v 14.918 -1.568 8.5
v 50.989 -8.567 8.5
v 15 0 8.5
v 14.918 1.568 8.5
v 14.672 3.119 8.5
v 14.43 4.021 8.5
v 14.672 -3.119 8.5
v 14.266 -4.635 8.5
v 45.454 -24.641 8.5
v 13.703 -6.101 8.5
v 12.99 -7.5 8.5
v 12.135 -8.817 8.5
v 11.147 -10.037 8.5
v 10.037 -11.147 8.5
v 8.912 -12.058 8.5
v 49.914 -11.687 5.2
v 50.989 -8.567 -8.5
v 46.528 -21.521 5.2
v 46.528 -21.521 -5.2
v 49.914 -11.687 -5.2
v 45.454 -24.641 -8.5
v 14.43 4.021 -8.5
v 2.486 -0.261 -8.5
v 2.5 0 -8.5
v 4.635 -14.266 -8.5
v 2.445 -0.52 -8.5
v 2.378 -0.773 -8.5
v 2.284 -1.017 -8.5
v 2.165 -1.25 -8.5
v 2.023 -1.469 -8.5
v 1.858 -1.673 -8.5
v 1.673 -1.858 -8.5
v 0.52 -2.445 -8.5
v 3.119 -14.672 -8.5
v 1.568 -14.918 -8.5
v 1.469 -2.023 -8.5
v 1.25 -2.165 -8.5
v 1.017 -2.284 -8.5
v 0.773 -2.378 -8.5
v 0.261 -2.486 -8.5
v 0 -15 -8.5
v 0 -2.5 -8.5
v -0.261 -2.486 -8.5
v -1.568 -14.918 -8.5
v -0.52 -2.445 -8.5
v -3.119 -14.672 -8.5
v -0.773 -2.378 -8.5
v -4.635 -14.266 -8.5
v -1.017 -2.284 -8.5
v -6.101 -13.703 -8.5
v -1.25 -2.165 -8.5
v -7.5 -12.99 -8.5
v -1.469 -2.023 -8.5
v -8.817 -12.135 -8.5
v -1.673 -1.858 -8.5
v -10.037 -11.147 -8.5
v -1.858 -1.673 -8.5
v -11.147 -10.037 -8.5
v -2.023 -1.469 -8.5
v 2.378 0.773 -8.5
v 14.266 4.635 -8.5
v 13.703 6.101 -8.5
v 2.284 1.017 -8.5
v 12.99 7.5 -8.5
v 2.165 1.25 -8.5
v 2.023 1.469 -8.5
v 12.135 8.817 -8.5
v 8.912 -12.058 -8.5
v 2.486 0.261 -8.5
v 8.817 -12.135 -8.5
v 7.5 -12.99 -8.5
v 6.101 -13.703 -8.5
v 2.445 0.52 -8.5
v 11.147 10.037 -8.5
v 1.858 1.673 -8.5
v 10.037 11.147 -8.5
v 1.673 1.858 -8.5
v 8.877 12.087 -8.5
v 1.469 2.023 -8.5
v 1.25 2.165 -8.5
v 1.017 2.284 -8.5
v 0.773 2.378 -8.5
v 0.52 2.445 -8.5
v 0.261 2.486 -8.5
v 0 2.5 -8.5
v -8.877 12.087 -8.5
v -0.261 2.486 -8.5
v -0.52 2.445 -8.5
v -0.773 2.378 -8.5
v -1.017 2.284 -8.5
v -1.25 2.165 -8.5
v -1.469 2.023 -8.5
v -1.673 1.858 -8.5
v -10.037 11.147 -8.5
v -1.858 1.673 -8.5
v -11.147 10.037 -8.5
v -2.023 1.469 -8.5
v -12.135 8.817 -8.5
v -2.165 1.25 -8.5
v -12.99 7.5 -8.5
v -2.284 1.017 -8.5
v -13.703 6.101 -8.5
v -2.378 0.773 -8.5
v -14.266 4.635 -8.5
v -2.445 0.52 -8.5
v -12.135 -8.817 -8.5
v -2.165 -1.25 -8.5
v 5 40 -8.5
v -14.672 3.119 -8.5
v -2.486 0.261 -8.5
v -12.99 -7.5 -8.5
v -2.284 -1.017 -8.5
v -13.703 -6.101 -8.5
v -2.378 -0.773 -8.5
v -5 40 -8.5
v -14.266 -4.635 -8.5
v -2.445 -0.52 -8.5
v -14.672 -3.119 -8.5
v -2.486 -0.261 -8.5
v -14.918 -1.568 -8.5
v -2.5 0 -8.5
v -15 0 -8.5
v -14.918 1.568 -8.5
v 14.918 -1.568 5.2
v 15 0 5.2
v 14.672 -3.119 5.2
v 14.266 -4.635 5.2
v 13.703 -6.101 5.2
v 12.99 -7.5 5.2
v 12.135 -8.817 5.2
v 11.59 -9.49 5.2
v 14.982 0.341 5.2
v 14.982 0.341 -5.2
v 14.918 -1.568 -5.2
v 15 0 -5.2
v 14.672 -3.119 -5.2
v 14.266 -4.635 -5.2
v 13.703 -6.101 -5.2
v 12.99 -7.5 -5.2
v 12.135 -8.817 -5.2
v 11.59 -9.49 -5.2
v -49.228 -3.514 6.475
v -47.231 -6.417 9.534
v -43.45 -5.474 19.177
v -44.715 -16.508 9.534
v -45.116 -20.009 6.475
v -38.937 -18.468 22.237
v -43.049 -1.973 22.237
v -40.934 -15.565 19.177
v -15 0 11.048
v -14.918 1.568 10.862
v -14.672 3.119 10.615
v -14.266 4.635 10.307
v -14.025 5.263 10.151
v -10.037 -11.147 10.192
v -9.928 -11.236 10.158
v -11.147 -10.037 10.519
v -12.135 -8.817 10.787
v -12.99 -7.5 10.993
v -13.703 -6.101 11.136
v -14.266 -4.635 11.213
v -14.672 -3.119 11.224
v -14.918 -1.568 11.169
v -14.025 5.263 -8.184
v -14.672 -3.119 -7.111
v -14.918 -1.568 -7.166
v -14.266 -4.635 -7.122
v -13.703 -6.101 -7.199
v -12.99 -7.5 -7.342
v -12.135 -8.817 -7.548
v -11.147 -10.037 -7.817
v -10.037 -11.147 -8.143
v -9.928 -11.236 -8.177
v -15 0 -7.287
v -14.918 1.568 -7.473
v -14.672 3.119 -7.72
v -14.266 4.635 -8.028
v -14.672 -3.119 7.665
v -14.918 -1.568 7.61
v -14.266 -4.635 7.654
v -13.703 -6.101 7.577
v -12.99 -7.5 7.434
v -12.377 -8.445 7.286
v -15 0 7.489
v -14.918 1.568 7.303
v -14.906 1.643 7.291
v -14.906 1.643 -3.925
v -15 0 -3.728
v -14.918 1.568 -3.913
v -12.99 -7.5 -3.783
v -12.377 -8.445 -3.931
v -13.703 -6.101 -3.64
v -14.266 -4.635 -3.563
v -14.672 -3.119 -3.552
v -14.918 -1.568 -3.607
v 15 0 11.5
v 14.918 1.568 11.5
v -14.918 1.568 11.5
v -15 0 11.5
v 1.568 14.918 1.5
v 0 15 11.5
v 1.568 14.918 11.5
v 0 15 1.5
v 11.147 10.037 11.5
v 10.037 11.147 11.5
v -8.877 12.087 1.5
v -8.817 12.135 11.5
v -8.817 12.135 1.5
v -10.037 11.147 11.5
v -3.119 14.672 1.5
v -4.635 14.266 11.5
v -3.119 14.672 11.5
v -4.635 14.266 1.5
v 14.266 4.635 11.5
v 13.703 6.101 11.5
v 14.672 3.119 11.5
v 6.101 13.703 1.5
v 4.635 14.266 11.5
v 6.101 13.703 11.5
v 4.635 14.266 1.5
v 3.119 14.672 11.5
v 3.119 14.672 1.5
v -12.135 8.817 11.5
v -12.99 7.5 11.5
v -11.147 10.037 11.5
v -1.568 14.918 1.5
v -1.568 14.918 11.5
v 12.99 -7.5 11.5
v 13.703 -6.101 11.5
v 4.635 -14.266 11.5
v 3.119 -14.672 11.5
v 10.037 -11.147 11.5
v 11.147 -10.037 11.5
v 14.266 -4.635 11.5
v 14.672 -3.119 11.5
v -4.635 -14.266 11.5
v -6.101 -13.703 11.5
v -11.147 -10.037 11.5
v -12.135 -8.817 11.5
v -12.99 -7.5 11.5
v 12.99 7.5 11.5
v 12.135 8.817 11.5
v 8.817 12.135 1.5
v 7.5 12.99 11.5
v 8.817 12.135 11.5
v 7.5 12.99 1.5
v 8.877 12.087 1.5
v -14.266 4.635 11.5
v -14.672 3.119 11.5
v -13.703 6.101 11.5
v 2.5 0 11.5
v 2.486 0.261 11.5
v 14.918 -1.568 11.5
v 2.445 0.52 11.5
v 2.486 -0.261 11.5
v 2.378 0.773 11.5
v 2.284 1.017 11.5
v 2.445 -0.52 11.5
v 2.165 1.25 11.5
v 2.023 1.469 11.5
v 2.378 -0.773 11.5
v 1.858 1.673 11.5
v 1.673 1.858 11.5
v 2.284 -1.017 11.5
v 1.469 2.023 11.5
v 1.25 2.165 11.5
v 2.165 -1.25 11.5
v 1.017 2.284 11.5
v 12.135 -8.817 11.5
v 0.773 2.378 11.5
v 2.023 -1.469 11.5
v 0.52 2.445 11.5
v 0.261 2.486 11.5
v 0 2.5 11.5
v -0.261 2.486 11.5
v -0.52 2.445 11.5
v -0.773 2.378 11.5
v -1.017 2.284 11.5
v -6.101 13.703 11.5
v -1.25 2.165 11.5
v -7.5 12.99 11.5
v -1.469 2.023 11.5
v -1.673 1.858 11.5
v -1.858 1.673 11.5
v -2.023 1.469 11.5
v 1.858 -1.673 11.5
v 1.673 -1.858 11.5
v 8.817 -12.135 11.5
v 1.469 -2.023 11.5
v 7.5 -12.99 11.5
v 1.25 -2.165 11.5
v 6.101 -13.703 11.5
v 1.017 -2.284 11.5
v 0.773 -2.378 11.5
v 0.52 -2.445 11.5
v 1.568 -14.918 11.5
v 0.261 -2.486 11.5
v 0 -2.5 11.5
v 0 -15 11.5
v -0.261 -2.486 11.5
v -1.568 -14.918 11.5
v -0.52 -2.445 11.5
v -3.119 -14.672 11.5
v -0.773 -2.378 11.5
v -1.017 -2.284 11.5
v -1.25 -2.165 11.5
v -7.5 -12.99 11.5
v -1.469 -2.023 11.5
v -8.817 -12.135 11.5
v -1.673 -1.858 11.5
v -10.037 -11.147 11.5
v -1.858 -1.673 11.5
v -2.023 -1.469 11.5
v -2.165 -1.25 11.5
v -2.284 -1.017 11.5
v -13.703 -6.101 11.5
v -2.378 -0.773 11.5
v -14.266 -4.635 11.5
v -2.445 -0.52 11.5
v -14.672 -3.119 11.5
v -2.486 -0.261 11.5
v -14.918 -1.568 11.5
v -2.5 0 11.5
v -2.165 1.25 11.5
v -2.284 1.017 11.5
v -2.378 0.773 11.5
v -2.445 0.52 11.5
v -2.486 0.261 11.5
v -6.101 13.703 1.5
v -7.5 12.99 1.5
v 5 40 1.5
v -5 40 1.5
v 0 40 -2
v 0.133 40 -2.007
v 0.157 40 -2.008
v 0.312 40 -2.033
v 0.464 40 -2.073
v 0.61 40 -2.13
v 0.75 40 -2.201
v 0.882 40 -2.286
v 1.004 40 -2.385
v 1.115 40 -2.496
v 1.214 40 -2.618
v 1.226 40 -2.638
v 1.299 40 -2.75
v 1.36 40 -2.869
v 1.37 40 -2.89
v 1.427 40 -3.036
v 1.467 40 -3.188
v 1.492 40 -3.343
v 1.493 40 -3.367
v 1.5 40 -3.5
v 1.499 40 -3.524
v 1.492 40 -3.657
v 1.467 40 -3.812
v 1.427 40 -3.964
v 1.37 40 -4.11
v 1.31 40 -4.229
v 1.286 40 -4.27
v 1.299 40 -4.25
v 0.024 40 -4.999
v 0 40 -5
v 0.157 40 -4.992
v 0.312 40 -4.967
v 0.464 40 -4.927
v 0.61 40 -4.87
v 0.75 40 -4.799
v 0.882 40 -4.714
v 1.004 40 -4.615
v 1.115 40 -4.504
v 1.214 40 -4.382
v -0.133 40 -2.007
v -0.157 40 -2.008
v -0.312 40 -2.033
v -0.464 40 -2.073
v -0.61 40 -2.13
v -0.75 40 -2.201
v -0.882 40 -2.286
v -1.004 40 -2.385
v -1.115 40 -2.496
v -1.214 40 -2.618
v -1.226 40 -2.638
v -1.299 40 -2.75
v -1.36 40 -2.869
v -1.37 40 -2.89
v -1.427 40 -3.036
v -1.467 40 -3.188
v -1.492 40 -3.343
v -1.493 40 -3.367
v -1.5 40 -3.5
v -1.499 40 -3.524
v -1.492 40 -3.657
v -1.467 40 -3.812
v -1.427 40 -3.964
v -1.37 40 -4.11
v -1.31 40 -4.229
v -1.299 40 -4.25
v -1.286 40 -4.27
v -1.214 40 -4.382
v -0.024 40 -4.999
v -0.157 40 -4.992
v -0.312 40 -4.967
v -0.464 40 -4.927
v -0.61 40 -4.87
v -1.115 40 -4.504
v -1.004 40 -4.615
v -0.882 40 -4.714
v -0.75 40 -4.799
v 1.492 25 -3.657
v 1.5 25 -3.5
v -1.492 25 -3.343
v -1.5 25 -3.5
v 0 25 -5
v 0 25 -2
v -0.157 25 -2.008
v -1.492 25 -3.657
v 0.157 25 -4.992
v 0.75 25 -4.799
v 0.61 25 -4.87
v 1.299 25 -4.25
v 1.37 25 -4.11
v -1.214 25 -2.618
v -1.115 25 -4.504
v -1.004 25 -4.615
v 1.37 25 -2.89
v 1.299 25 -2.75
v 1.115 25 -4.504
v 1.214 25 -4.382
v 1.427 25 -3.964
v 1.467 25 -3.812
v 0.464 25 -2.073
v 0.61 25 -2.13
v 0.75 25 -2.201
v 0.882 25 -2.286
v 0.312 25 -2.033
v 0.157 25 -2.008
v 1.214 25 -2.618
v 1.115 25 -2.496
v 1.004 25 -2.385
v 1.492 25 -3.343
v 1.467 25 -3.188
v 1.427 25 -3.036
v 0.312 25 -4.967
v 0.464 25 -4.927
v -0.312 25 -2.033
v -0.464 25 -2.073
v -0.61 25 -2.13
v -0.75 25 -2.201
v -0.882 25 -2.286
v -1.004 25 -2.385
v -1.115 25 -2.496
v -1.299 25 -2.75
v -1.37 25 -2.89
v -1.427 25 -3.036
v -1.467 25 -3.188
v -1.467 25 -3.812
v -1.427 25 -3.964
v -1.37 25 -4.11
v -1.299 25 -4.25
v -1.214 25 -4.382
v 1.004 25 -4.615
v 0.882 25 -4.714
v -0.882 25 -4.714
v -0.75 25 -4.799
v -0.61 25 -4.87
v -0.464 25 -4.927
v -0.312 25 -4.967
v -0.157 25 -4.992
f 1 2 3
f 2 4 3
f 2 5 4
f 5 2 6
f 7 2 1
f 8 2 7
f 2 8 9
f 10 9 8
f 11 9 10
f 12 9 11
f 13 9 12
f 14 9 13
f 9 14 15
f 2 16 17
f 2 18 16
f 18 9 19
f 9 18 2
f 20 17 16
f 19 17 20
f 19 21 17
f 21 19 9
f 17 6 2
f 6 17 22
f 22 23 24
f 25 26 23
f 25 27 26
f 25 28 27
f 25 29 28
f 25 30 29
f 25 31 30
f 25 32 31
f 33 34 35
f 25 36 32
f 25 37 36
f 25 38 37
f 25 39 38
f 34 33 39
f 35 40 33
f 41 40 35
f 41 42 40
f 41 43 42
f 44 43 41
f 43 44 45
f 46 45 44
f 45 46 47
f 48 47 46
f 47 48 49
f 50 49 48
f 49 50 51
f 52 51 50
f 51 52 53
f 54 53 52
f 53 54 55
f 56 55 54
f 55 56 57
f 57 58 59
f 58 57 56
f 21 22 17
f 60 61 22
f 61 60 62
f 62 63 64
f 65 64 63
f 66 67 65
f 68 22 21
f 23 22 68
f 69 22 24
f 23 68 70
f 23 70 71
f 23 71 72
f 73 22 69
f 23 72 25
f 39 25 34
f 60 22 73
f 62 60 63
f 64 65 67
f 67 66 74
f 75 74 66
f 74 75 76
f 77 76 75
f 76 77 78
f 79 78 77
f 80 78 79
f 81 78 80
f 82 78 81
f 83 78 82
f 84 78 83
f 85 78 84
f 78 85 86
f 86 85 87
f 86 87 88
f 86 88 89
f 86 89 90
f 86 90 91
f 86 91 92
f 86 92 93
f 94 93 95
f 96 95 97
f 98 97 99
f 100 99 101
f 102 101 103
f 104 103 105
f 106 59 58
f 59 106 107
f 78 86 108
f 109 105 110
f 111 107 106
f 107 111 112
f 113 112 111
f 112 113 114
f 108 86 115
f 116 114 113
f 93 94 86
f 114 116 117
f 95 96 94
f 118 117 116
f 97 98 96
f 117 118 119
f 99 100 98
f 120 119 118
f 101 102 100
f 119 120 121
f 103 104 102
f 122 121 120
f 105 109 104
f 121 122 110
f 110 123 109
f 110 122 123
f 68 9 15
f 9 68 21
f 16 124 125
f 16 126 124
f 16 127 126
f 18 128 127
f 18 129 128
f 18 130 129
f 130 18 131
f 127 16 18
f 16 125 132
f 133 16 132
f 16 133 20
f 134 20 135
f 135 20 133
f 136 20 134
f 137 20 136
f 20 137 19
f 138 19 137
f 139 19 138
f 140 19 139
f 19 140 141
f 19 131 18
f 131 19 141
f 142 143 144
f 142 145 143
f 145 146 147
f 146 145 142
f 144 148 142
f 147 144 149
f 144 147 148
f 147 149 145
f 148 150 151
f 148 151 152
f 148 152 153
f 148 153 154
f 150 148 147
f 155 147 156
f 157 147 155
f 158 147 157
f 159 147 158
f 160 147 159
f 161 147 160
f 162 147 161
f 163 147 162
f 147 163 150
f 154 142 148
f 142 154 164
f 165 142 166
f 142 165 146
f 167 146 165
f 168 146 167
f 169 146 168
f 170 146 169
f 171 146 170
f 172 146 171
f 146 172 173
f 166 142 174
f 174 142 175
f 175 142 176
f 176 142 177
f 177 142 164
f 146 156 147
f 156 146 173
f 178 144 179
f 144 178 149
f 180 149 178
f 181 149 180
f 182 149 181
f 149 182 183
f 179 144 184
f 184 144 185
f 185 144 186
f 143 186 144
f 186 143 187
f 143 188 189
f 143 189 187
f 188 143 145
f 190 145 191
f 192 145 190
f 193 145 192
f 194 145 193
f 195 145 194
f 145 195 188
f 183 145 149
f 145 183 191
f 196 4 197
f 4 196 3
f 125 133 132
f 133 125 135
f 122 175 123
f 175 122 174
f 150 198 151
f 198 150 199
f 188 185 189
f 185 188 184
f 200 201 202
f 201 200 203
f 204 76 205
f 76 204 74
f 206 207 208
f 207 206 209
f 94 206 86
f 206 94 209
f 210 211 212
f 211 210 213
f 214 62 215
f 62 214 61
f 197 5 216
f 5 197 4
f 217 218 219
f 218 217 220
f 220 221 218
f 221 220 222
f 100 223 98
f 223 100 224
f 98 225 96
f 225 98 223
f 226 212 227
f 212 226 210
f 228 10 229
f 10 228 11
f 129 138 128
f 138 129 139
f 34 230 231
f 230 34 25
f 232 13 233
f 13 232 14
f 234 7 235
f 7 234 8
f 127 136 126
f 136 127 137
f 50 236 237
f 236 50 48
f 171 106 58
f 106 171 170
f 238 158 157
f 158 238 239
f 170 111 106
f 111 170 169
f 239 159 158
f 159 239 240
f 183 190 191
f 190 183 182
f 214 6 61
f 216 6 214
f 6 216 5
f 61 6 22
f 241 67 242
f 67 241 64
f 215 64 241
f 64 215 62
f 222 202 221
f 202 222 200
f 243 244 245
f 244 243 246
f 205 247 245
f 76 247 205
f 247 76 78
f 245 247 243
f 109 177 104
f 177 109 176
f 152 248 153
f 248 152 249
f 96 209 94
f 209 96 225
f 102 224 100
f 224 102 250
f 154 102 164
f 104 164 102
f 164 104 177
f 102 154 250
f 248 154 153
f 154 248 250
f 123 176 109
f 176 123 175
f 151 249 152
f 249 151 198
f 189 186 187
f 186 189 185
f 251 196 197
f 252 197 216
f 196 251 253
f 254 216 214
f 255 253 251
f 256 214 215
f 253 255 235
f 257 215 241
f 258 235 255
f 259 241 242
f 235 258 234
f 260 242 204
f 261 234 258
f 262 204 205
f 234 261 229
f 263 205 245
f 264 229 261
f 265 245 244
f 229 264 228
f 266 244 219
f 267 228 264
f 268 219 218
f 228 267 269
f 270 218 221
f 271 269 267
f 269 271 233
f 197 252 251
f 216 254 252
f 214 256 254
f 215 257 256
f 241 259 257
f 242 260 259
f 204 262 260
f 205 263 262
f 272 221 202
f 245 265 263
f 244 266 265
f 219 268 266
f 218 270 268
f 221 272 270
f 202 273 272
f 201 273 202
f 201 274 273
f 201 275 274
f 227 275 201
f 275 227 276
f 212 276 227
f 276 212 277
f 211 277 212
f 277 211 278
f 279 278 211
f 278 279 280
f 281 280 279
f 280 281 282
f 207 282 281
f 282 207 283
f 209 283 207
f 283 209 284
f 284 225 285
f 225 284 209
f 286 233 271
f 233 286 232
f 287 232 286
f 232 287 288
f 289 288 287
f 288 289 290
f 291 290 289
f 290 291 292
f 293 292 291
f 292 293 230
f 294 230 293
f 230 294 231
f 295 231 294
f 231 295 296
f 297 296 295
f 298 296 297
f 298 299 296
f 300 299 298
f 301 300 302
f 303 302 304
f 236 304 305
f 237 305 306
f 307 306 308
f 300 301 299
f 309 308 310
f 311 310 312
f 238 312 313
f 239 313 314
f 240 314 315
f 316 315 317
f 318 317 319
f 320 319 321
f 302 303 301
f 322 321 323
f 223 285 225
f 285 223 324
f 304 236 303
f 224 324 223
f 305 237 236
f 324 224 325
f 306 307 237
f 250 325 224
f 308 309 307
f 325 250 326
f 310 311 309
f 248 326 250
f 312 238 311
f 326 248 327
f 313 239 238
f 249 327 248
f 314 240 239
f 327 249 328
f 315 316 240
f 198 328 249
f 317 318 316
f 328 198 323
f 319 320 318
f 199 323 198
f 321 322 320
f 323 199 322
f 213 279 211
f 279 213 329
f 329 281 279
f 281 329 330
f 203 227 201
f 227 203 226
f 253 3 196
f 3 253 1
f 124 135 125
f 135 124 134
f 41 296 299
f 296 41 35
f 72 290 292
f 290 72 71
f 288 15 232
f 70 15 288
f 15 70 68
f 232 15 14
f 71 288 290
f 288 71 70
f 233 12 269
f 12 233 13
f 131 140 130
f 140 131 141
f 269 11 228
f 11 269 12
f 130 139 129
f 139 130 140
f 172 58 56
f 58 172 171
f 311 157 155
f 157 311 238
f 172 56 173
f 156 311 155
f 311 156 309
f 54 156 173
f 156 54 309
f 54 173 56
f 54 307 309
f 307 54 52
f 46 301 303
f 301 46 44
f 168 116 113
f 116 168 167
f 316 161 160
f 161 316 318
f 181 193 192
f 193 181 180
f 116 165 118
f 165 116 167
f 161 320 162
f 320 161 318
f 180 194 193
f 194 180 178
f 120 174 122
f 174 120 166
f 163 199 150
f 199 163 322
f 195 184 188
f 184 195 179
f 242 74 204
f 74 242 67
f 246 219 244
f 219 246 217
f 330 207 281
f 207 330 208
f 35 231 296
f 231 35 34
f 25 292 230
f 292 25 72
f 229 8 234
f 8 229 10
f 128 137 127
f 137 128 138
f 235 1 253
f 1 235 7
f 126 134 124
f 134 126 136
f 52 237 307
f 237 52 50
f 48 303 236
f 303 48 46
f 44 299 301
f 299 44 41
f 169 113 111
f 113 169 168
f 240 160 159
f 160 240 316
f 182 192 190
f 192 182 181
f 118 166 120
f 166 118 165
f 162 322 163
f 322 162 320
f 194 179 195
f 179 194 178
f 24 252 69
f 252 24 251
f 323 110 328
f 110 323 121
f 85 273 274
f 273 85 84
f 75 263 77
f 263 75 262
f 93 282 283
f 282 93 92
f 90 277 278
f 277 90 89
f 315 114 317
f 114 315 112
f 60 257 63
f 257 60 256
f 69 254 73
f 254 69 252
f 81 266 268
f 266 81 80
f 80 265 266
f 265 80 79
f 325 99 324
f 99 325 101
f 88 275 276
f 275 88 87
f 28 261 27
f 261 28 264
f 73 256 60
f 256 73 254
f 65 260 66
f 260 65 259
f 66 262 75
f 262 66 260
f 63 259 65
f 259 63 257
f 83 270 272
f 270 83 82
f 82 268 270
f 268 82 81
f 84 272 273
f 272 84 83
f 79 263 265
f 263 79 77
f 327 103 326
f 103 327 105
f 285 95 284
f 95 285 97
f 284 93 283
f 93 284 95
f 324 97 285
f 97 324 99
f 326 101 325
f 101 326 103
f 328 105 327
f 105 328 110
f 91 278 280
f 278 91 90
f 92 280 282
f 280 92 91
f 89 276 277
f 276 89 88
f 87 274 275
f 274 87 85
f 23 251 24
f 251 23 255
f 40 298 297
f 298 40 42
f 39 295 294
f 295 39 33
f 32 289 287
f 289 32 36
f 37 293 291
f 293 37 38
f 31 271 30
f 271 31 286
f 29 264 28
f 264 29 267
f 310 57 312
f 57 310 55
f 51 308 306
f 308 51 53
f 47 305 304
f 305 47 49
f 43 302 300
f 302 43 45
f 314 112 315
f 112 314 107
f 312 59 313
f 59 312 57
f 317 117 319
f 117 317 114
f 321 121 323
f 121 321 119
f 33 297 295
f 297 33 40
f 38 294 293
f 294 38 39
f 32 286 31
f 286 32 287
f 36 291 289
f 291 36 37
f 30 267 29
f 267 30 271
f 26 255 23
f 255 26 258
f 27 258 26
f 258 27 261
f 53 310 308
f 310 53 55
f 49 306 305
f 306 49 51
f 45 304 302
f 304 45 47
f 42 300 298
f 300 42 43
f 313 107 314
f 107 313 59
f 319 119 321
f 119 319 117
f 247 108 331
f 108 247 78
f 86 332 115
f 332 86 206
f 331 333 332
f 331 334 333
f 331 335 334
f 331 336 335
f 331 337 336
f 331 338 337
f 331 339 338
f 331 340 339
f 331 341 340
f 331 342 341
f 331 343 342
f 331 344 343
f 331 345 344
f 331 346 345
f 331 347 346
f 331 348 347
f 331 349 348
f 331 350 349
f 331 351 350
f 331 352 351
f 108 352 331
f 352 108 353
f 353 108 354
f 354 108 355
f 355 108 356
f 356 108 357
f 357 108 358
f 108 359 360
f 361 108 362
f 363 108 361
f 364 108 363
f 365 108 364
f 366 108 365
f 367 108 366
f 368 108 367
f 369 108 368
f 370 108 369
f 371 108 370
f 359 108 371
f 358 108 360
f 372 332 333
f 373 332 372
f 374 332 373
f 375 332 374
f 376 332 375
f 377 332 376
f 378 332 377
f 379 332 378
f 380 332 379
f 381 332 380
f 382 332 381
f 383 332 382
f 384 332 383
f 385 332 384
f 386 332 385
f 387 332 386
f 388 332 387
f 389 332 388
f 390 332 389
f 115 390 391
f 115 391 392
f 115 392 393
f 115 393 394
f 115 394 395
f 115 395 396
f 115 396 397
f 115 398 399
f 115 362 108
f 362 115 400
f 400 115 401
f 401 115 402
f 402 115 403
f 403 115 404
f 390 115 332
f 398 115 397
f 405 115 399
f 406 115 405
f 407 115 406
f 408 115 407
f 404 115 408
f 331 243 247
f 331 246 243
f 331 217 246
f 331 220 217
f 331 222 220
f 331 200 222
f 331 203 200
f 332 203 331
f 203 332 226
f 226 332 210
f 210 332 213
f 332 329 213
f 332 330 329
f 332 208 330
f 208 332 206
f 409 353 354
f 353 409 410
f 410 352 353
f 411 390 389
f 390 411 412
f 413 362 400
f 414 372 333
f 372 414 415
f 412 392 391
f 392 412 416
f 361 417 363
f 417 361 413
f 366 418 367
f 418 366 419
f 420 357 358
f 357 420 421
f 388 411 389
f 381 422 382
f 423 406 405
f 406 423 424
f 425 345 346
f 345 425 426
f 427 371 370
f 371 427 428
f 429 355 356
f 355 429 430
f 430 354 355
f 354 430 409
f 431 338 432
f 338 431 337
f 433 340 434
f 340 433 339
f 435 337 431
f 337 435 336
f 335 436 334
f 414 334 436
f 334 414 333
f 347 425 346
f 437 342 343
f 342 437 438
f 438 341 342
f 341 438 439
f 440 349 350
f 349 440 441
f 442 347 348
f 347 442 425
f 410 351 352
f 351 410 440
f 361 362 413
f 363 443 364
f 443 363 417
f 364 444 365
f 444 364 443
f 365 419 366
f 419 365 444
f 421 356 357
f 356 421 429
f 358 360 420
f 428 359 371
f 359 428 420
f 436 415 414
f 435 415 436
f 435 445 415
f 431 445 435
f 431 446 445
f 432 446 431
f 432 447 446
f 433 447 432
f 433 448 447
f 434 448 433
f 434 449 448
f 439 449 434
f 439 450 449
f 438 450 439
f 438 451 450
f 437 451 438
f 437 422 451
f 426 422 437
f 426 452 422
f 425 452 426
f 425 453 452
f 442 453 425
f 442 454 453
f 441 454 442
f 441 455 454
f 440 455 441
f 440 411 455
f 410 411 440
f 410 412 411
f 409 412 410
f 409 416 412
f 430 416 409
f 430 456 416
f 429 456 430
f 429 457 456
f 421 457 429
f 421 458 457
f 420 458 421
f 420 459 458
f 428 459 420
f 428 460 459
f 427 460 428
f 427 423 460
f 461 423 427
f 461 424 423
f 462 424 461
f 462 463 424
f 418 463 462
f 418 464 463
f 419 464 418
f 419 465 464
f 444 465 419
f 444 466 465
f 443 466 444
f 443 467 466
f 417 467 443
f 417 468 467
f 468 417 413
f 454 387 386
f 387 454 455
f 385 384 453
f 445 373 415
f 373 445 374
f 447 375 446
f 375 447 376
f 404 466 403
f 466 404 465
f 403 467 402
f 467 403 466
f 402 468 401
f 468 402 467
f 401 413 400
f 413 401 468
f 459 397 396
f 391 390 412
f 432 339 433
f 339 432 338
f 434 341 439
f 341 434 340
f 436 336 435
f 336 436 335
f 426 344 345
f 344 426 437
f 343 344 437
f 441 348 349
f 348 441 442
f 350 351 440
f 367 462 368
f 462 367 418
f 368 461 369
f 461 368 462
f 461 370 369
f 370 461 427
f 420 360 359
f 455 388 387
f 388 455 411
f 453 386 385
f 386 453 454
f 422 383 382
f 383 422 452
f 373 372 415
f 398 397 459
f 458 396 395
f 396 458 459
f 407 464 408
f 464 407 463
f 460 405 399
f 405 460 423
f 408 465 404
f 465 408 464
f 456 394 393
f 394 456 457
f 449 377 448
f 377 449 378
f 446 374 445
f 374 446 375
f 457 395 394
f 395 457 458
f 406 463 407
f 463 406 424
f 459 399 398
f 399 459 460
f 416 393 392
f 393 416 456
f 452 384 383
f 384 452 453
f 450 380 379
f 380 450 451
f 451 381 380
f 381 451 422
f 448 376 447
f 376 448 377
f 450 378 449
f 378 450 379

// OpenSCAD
rotate([0,0,-19])
translate([30,0,0])
difference(){
cube([42,17,17],center=true);
cube([43,10.4,10.4],center=true);
}

difference(){
translate([0,0,-4])
rotate([0,0,14])
rotate([0,22,0])
translate([-28,0,0])
difference(){
cube([42,17,17],center=true);
cube([43,10.4,10.4],center=true);
}
translate([0,0,-18.5])
cylinder(d=30,h=10);
}

$fn=60;
translate([0,0,-8.5])
difference(){
cylinder(d=30,h=20);
cylinder(d=5,h=20);
}

difference(){
translate([0,0,-8.5])
linear_extrude(height=10)
polygon([[-10,4],[10,4],[5,40],[-5,40]]);
translate([0,25,-3.5])rotate([-90,0,0])
cylinder(d=3,h=100);
}
